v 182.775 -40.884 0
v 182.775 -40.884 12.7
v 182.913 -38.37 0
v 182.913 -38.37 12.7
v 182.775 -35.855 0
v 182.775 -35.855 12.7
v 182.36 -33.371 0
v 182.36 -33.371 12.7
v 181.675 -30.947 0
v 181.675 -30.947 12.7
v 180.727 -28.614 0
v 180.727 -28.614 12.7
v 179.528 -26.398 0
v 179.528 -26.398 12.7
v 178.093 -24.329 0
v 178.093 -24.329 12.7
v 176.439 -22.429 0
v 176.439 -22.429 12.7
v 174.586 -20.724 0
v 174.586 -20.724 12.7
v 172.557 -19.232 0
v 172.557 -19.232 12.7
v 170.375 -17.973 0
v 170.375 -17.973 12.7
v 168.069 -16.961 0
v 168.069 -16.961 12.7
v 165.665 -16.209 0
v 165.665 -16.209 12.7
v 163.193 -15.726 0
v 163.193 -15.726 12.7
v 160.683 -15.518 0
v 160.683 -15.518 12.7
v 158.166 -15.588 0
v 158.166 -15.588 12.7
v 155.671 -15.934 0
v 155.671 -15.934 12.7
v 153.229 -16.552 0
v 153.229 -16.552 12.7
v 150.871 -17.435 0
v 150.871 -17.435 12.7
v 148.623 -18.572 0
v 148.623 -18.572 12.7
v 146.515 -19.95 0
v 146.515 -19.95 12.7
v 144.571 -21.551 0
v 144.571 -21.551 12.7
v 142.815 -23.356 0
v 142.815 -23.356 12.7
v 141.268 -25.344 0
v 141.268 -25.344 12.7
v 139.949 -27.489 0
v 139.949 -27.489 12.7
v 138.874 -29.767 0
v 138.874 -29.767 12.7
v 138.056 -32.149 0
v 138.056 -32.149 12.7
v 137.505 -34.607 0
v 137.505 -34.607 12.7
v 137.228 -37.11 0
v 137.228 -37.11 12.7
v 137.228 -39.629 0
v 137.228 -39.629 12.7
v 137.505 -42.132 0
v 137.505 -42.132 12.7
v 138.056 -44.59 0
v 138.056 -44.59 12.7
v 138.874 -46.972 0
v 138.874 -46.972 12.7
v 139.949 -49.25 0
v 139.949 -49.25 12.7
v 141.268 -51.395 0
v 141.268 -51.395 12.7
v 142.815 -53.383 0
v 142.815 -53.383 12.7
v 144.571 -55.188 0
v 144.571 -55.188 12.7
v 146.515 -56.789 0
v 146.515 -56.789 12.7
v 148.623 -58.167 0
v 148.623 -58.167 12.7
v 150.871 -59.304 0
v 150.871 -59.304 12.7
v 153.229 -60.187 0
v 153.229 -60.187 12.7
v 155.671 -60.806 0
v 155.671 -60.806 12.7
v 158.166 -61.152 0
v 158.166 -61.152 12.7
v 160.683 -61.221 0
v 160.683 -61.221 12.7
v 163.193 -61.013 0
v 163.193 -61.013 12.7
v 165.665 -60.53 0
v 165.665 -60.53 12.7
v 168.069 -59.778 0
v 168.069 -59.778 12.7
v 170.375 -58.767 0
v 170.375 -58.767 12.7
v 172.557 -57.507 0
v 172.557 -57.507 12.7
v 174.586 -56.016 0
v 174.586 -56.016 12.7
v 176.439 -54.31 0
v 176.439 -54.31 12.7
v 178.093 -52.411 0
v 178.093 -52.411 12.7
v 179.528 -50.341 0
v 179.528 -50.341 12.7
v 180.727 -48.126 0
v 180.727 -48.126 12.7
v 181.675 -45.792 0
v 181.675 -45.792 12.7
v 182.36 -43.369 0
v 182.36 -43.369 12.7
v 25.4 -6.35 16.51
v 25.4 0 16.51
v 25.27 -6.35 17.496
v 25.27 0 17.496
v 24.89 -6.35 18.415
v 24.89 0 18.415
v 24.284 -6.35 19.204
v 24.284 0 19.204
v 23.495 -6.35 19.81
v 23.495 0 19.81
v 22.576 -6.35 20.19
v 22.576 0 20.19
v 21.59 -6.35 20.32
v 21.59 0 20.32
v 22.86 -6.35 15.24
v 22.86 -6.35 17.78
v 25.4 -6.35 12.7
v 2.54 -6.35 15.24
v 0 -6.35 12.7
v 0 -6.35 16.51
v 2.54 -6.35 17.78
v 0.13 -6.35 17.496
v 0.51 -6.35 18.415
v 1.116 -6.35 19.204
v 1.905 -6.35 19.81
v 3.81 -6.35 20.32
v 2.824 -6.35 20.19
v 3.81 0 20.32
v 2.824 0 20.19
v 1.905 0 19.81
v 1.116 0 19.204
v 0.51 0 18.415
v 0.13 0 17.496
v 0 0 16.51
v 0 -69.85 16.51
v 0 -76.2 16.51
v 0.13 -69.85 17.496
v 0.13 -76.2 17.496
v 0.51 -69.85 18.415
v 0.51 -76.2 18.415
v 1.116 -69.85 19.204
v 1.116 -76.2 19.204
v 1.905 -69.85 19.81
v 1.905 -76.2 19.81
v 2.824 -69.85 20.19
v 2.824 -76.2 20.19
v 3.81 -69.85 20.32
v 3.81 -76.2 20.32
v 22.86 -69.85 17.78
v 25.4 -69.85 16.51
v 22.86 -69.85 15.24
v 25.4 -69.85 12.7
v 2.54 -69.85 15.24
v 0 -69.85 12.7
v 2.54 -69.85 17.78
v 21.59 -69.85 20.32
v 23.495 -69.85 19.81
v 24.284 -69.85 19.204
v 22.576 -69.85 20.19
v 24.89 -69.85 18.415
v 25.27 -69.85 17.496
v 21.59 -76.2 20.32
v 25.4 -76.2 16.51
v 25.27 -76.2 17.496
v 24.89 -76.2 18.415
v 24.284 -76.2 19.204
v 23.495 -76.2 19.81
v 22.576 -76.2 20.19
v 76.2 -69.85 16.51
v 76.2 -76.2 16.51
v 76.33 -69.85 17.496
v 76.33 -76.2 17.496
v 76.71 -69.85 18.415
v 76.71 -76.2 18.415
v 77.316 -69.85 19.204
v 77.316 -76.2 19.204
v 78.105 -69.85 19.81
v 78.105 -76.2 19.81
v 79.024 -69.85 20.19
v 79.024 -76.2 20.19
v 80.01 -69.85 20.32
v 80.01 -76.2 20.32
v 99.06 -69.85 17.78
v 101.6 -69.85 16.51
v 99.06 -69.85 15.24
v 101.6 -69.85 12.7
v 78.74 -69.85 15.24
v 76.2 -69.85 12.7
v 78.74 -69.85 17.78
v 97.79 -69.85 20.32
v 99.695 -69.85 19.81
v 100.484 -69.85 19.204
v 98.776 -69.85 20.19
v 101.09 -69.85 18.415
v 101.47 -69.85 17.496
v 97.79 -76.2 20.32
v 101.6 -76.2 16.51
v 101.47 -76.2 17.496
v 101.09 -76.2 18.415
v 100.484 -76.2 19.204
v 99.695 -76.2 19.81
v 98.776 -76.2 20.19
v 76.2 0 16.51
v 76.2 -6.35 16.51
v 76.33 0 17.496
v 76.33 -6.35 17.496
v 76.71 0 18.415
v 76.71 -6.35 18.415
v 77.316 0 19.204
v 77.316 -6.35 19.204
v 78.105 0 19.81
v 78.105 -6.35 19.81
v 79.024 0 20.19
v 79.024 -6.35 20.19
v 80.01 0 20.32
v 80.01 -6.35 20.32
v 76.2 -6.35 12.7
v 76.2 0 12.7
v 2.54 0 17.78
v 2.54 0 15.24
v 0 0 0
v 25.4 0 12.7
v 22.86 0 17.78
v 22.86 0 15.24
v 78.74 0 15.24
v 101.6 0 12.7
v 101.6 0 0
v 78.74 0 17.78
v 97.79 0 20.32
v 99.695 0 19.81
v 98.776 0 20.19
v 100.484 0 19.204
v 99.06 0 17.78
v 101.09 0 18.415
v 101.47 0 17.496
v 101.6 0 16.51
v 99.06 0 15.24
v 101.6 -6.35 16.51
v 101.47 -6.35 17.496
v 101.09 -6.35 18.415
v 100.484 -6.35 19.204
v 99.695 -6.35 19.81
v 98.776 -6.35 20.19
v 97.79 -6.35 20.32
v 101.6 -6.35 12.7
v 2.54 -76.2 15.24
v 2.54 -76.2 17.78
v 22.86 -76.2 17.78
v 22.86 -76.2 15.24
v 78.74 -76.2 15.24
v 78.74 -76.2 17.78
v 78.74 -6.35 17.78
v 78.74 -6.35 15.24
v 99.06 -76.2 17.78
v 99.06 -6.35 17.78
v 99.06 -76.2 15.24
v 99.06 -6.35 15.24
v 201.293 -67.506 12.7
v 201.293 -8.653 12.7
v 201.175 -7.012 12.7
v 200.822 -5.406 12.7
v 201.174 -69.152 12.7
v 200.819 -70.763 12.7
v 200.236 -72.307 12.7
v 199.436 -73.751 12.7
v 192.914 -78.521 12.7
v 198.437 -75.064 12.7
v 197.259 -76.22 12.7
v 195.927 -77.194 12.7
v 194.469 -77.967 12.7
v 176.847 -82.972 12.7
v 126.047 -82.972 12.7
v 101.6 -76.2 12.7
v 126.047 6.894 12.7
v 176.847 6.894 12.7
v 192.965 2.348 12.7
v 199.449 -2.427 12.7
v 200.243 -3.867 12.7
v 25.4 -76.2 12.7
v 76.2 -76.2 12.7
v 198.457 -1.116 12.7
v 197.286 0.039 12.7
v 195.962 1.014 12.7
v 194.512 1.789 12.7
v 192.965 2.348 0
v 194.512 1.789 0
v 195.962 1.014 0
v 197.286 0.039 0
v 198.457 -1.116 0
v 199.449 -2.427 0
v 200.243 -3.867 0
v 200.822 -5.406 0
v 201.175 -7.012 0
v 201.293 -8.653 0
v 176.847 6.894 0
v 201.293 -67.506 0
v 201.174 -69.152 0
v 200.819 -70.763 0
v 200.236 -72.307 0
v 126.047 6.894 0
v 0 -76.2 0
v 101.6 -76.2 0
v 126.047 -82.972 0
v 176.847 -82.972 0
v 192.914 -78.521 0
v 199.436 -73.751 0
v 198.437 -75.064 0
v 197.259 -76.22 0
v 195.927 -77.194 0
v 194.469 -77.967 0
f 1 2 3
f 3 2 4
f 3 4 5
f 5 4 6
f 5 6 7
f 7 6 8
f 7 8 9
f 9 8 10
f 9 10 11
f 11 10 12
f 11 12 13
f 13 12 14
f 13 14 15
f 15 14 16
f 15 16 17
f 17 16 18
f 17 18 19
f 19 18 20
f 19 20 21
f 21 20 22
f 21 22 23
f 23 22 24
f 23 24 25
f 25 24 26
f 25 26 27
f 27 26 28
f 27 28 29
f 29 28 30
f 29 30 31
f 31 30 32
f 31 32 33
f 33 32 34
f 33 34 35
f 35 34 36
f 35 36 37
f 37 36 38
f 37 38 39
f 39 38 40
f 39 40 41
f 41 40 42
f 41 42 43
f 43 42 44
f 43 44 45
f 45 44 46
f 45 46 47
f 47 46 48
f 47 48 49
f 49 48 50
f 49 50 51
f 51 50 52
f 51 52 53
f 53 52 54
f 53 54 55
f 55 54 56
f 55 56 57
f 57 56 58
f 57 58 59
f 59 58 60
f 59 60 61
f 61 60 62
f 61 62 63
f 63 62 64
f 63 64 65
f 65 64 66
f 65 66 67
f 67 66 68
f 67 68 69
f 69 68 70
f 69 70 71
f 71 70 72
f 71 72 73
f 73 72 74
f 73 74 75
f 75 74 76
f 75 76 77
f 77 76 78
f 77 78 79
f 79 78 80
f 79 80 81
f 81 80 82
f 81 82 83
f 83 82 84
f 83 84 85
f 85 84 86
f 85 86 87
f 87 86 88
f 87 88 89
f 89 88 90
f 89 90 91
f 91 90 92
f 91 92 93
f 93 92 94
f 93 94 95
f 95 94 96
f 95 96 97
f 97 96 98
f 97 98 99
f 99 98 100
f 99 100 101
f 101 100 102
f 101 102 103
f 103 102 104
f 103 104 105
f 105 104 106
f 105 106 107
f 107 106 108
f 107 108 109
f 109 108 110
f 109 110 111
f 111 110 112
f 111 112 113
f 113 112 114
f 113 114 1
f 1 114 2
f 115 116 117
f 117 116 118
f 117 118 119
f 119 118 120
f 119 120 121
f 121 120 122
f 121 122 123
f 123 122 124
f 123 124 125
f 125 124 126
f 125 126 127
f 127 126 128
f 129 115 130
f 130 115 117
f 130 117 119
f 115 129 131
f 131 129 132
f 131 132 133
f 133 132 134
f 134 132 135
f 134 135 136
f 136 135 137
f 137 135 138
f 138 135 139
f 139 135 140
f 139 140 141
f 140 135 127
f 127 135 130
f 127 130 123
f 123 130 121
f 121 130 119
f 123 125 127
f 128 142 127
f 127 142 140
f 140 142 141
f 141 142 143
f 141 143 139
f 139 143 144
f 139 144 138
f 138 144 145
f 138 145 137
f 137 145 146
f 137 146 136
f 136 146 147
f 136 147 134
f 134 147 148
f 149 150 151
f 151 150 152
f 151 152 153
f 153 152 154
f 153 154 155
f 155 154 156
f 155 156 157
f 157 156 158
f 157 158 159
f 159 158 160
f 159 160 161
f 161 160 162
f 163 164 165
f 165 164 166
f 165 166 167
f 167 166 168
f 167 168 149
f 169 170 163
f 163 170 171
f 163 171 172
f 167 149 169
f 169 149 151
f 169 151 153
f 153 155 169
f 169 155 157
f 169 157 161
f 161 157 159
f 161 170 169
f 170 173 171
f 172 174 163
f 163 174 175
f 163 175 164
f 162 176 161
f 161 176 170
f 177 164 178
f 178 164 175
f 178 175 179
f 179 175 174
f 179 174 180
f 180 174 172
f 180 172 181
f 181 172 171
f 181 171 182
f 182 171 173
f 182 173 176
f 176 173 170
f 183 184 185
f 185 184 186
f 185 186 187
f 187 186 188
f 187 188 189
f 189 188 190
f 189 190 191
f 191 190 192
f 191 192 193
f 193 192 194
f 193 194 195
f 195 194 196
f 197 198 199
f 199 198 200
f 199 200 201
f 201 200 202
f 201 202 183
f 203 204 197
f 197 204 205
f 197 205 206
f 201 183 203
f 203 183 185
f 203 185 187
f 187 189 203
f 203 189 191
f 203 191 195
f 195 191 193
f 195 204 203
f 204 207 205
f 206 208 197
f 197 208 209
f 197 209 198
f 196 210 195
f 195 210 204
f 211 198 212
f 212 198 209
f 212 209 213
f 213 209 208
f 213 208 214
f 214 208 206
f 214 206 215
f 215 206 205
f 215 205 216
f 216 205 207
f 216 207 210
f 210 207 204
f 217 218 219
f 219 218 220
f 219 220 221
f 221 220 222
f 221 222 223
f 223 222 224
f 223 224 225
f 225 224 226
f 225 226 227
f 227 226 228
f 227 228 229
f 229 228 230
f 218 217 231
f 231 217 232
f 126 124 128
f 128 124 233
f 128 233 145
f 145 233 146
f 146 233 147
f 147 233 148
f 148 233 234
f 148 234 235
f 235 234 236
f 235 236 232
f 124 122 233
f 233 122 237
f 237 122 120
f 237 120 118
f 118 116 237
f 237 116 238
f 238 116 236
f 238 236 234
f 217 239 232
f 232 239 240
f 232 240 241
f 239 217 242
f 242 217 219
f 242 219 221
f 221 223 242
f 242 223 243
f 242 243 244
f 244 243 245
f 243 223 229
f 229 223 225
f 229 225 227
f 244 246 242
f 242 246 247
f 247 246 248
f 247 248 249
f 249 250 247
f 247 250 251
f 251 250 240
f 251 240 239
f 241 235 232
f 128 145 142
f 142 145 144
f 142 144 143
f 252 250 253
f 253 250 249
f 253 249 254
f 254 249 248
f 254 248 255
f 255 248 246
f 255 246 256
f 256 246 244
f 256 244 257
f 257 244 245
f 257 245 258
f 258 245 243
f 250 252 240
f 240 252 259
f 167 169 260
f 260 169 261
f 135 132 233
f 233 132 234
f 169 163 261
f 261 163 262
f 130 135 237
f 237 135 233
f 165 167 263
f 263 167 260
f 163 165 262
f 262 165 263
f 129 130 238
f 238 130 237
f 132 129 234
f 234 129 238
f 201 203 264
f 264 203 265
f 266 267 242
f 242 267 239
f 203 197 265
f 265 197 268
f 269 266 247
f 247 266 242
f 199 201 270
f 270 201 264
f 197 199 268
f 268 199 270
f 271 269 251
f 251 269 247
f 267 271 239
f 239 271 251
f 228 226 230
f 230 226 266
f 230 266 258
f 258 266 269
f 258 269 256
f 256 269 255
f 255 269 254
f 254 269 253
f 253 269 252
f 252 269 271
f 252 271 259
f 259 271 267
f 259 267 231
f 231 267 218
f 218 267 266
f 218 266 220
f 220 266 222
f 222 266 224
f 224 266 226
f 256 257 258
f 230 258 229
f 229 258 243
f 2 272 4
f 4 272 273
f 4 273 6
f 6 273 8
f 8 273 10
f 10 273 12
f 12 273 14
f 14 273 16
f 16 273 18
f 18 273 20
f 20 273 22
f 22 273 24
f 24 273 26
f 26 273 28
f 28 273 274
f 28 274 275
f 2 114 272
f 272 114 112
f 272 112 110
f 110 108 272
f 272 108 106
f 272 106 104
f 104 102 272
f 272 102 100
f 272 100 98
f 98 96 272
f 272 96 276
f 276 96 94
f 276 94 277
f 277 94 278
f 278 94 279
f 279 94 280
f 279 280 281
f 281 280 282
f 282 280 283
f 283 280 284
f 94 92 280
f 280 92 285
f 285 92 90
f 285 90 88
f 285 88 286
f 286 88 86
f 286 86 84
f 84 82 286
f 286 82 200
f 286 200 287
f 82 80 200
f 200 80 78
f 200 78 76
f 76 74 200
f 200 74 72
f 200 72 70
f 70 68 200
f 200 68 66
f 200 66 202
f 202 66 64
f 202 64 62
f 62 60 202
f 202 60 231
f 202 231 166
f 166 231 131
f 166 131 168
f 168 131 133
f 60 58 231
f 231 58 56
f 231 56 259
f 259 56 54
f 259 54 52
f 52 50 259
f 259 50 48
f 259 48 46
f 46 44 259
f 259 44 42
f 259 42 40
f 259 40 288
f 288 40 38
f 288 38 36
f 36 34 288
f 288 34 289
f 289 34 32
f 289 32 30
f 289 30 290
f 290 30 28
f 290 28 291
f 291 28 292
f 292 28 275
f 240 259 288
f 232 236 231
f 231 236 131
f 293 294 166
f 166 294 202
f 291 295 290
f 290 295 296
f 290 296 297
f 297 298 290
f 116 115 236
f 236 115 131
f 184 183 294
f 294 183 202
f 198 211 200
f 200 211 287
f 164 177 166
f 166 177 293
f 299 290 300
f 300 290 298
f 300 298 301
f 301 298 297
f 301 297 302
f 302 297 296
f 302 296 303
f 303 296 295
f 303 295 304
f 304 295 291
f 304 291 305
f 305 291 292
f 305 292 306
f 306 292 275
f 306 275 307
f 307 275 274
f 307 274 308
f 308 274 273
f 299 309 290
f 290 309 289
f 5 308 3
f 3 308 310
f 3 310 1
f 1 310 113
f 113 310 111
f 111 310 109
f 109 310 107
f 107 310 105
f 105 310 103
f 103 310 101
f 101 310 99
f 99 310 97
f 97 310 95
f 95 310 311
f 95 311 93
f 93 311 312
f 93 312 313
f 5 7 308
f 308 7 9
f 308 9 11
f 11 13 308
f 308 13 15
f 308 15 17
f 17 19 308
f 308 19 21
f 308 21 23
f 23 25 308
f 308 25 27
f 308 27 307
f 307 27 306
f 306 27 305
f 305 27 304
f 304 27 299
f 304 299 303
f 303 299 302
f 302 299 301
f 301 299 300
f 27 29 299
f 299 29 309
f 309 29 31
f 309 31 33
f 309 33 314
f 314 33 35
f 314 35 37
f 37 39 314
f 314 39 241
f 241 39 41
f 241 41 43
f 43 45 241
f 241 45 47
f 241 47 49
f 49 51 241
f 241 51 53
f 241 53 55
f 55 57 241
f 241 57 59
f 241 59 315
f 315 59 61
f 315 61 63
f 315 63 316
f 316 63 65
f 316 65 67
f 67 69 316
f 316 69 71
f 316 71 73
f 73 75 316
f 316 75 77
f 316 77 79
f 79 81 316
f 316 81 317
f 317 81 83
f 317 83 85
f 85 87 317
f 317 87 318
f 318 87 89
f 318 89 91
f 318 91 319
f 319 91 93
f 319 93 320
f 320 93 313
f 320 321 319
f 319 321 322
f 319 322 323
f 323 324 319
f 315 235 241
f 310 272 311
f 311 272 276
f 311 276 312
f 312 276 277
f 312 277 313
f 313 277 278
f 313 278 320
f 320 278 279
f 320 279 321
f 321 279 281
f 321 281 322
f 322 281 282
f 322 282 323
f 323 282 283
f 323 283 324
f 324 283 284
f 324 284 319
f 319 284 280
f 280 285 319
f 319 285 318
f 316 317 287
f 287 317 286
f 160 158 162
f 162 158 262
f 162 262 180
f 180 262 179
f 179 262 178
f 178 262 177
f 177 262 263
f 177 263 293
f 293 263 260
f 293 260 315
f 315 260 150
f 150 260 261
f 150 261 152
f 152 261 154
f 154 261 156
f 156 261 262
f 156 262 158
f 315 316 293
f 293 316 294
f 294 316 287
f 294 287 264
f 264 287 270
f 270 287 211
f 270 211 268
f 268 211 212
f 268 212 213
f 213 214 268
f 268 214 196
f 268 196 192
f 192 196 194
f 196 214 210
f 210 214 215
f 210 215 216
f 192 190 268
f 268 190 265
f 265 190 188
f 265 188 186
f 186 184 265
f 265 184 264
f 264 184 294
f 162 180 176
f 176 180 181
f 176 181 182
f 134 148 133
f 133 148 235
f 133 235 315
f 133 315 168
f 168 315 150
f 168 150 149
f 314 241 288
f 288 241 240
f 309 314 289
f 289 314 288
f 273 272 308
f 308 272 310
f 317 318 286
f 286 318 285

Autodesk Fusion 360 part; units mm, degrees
sketch "Sketch1" plane through (0, 0, 0) normal (0, 0, 1) x (1, 0, 0)
  line L0 (0, 0) -> (101.6, 0)
  line L1 (101.6, 0) -> (101.6, -76.2)
  line L2 (101.6, -76.2) -> (0, -76.2)
  line L3 (0, -76.2) -> (0, 0)
  line L4 (101.6, 0) -> (126.0466, 6.8938)
  line L5 (126.0466, 6.8938) -> (176.8466, 6.8938)
  line L6 (176.8466, 6.8938) -> (201.2932, 0)
  line L7 (201.2932, 0) -> (201.2932, -76.2)
  line L8 (201.2932, -76.2) -> (176.8466, -82.9718)
  line L9 (176.8466, -82.9718) -> (126.0466, -82.9718)
  line L10 (126.0466, -82.9718) -> (101.6, -76.2)
  dimension "d1" = 101.6
  dimension "d2" = 76.2
  dimension "d3" = 25.4
  dimension "d4" = 50.8
  dimension "d5" = 25.4
extrude "Extrude1" add sketch "Sketch1" along normal blind 12.7
fillet "Fillet1" radius 11.43 2 edges at (201.2932, -76.2, 6.35) (201.2932, 0, 6.35)
sketch "Sketch2" plane through (0, 0, 12.7) normal (0, 0, 1) x (-1, 0, 0)
  arc A0 (-201.2932, 8.6526) -> (-192.9654, -2.3484) centre (-189.8632, 8.6526) ccw
  line L0 (-192.9654, -2.3484) -> (-176.8466, -6.8938)
  line L1 (-176.8466, -6.8938) -> (-126.0466, -6.8938)
  line L2 (-126.0466, -6.8938) -> (-101.6, 0)
  line L3 (-101.6, 0) -> (0, 0)
  line L4 (0, 0) -> (0, 76.2)
  line L5 (0, 76.2) -> (-101.6, 76.2)
  line L6 (-101.6, 76.2) -> (-126.0466, 82.9718)
  line L7 (-126.0466, 82.9718) -> (-176.8466, 82.9718)
  line L8 (-176.8466, 82.9718) -> (-192.9144, 78.5209)
  arc A1 (-192.9144, 78.5209) -> (-201.2932, 67.5057) centre (-189.8632, 67.5057) ccw
  line L9 (-201.2932, 67.5057) -> (-201.2932, 8.6526)
  line L10 (0, 0) -> (-25.4, 0)
  line L11 (-25.4, 0) -> (-25.4, 6.35)
  line L12 (-25.4, 6.35) -> (0, 6.35)
  line L13 (0, 6.35) -> (0, 0)
  line L14 (0, 38.1) -> (-145.8184, 38.1) construction
  line L15 (-50.8, 0) -> (-50.8, 76.2) construction
  line L16 (0, 76.2) -> (-25.4, 76.2)
  line L17 (0, 69.85) -> (0, 76.2)
  line L18 (-25.4, 69.85) -> (0, 69.85)
  line L19 (-25.4, 76.2) -> (-25.4, 69.85)
  line L20 (-76.2, 0) -> (-76.2, 6.35)
  line L21 (-101.6, 0) -> (-76.2, 0)
  line L22 (-101.6, 6.35) -> (-101.6, 0)
  line L23 (-76.2, 6.35) -> (-101.6, 6.35)
  line L24 (-76.2, 69.85) -> (-101.6, 69.85)
  line L25 (-101.6, 69.85) -> (-101.6, 76.2)
  line L26 (-101.6, 76.2) -> (-76.2, 76.2)
  line L27 (-76.2, 76.2) -> (-76.2, 69.85)
  dimension "d10" = 25.4
  dimension "d11" = 6.35
extrude "Extrude2" add sketch "Sketch2" along normal blind 7.62 contours L3 L20 L21 L22 L23 | L5 L24 L25 L26 L27 | L3 L4 L10 L11 L12 L13 | L4 L5 L16 L17 L18 L19
sketch "Sketch3" plane through (0, -76.2, 0) normal (0, -1, 0) x (1, 0, 0)
  line L0 (0, 0) -> (101.6, 0)
  line L1 (101.6, 0) -> (101.6, 12.7)
  line L2 (101.6, 12.7) -> (101.6, 20.32)
  line L3 (101.6, 20.32) -> (76.2, 20.32)
  line L4 (76.2, 20.32) -> (76.2, 12.7)
  line L5 (76.2, 12.7) -> (25.4, 12.7)
  line L6 (25.4, 12.7) -> (25.4, 20.32)
  line L7 (25.4, 20.32) -> (0, 20.32)
  line L8 (0, 20.32) -> (0, 0)
  line L9 (2.54, 17.78) -> (22.86, 17.78)
  line L10 (22.86, 17.78) -> (22.86, 15.24)
  line L11 (22.86, 15.24) -> (2.54, 15.24)
  line L12 (2.54, 15.24) -> (2.54, 17.78)
  line L13 (78.74, 17.78) -> (99.06, 17.78)
  line L14 (99.06, 17.78) -> (99.06, 15.24)
  line L15 (99.06, 15.24) -> (78.74, 15.24)
  line L16 (78.74, 15.24) -> (78.74, 17.78)
extrude "Extrude3" cut sketch "Sketch3" against normal blind 86.36 contours L9 L10 L11 L12 | L13 L14 L15 L16
fillet "Fillet2" radius 3.81 8 edges at (101.6, -3.175, 20.32) (76.2, -3.175, 20.32) (101.6, -73.025, 20.32) (76.2, -73.025, 20.32) (25.4, -73.025, 20.32) (0, -73.025, 20.32) (0, -3.175, 20.32) (25.4, -3.175, 20.32)
sketch "Sketch4" plane through (0, 0, 12.7) normal (0, 0, 1) x (-1, 0, 0)
  line L0 (-101.6, 0) -> (-101.6, 6.35)
  line L1 (-101.6, 6.35) -> (-76.2, 6.35)
  line L2 (-76.2, 6.35) -> (-76.2, 0)
  line L3 (-76.2, 0) -> (-25.4, 0)
  line L4 (-25.4, 0) -> (-25.4, 6.35)
  line L5 (-25.4, 6.35) -> (0, 6.35)
  line L6 (0, 6.35) -> (0, 69.85)
  line L7 (0, 69.85) -> (-25.4, 69.85)
  line L8 (-25.4, 69.85) -> (-25.4, 76.2)
  line L9 (-25.4, 76.2) -> (-76.2, 76.2)
  line L10 (-76.2, 76.2) -> (-76.2, 69.85)
  line L11 (-76.2, 69.85) -> (-101.6, 69.85)
  line L12 (-101.6, 69.85) -> (-101.6, 76.2)
  line L13 (-101.6, 76.2) -> (-126.0466, 82.9718)
  line L14 (-126.0466, 82.9718) -> (-176.8466, 82.9718)
  line L15 (-176.8466, 82.9718) -> (-192.9144, 78.5209)
  arc A0 (-192.9144, 78.5209) -> (-201.2932, 67.5057) centre (-189.8632, 67.5057) ccw
  line L16 (-201.2932, 67.5057) -> (-201.2932, 8.6526)
  arc A1 (-201.2932, 8.6526) -> (-192.9654, -2.3484) centre (-189.8632, 8.6526) ccw
  line L17 (-192.9654, -2.3484) -> (-176.8466, -6.8938)
  line L18 (-176.8466, -6.8938) -> (-126.0466, -6.8938)
  line L19 (-126.0466, -6.8938) -> (-101.6, 0)
  circle A2 centre (-160.0534, 38.3696) radius 22.86
  dimension "d18" = 45.72
extrude "Extrude4" cut sketch "Sketch4" against normal blind 38.1 contours A2
